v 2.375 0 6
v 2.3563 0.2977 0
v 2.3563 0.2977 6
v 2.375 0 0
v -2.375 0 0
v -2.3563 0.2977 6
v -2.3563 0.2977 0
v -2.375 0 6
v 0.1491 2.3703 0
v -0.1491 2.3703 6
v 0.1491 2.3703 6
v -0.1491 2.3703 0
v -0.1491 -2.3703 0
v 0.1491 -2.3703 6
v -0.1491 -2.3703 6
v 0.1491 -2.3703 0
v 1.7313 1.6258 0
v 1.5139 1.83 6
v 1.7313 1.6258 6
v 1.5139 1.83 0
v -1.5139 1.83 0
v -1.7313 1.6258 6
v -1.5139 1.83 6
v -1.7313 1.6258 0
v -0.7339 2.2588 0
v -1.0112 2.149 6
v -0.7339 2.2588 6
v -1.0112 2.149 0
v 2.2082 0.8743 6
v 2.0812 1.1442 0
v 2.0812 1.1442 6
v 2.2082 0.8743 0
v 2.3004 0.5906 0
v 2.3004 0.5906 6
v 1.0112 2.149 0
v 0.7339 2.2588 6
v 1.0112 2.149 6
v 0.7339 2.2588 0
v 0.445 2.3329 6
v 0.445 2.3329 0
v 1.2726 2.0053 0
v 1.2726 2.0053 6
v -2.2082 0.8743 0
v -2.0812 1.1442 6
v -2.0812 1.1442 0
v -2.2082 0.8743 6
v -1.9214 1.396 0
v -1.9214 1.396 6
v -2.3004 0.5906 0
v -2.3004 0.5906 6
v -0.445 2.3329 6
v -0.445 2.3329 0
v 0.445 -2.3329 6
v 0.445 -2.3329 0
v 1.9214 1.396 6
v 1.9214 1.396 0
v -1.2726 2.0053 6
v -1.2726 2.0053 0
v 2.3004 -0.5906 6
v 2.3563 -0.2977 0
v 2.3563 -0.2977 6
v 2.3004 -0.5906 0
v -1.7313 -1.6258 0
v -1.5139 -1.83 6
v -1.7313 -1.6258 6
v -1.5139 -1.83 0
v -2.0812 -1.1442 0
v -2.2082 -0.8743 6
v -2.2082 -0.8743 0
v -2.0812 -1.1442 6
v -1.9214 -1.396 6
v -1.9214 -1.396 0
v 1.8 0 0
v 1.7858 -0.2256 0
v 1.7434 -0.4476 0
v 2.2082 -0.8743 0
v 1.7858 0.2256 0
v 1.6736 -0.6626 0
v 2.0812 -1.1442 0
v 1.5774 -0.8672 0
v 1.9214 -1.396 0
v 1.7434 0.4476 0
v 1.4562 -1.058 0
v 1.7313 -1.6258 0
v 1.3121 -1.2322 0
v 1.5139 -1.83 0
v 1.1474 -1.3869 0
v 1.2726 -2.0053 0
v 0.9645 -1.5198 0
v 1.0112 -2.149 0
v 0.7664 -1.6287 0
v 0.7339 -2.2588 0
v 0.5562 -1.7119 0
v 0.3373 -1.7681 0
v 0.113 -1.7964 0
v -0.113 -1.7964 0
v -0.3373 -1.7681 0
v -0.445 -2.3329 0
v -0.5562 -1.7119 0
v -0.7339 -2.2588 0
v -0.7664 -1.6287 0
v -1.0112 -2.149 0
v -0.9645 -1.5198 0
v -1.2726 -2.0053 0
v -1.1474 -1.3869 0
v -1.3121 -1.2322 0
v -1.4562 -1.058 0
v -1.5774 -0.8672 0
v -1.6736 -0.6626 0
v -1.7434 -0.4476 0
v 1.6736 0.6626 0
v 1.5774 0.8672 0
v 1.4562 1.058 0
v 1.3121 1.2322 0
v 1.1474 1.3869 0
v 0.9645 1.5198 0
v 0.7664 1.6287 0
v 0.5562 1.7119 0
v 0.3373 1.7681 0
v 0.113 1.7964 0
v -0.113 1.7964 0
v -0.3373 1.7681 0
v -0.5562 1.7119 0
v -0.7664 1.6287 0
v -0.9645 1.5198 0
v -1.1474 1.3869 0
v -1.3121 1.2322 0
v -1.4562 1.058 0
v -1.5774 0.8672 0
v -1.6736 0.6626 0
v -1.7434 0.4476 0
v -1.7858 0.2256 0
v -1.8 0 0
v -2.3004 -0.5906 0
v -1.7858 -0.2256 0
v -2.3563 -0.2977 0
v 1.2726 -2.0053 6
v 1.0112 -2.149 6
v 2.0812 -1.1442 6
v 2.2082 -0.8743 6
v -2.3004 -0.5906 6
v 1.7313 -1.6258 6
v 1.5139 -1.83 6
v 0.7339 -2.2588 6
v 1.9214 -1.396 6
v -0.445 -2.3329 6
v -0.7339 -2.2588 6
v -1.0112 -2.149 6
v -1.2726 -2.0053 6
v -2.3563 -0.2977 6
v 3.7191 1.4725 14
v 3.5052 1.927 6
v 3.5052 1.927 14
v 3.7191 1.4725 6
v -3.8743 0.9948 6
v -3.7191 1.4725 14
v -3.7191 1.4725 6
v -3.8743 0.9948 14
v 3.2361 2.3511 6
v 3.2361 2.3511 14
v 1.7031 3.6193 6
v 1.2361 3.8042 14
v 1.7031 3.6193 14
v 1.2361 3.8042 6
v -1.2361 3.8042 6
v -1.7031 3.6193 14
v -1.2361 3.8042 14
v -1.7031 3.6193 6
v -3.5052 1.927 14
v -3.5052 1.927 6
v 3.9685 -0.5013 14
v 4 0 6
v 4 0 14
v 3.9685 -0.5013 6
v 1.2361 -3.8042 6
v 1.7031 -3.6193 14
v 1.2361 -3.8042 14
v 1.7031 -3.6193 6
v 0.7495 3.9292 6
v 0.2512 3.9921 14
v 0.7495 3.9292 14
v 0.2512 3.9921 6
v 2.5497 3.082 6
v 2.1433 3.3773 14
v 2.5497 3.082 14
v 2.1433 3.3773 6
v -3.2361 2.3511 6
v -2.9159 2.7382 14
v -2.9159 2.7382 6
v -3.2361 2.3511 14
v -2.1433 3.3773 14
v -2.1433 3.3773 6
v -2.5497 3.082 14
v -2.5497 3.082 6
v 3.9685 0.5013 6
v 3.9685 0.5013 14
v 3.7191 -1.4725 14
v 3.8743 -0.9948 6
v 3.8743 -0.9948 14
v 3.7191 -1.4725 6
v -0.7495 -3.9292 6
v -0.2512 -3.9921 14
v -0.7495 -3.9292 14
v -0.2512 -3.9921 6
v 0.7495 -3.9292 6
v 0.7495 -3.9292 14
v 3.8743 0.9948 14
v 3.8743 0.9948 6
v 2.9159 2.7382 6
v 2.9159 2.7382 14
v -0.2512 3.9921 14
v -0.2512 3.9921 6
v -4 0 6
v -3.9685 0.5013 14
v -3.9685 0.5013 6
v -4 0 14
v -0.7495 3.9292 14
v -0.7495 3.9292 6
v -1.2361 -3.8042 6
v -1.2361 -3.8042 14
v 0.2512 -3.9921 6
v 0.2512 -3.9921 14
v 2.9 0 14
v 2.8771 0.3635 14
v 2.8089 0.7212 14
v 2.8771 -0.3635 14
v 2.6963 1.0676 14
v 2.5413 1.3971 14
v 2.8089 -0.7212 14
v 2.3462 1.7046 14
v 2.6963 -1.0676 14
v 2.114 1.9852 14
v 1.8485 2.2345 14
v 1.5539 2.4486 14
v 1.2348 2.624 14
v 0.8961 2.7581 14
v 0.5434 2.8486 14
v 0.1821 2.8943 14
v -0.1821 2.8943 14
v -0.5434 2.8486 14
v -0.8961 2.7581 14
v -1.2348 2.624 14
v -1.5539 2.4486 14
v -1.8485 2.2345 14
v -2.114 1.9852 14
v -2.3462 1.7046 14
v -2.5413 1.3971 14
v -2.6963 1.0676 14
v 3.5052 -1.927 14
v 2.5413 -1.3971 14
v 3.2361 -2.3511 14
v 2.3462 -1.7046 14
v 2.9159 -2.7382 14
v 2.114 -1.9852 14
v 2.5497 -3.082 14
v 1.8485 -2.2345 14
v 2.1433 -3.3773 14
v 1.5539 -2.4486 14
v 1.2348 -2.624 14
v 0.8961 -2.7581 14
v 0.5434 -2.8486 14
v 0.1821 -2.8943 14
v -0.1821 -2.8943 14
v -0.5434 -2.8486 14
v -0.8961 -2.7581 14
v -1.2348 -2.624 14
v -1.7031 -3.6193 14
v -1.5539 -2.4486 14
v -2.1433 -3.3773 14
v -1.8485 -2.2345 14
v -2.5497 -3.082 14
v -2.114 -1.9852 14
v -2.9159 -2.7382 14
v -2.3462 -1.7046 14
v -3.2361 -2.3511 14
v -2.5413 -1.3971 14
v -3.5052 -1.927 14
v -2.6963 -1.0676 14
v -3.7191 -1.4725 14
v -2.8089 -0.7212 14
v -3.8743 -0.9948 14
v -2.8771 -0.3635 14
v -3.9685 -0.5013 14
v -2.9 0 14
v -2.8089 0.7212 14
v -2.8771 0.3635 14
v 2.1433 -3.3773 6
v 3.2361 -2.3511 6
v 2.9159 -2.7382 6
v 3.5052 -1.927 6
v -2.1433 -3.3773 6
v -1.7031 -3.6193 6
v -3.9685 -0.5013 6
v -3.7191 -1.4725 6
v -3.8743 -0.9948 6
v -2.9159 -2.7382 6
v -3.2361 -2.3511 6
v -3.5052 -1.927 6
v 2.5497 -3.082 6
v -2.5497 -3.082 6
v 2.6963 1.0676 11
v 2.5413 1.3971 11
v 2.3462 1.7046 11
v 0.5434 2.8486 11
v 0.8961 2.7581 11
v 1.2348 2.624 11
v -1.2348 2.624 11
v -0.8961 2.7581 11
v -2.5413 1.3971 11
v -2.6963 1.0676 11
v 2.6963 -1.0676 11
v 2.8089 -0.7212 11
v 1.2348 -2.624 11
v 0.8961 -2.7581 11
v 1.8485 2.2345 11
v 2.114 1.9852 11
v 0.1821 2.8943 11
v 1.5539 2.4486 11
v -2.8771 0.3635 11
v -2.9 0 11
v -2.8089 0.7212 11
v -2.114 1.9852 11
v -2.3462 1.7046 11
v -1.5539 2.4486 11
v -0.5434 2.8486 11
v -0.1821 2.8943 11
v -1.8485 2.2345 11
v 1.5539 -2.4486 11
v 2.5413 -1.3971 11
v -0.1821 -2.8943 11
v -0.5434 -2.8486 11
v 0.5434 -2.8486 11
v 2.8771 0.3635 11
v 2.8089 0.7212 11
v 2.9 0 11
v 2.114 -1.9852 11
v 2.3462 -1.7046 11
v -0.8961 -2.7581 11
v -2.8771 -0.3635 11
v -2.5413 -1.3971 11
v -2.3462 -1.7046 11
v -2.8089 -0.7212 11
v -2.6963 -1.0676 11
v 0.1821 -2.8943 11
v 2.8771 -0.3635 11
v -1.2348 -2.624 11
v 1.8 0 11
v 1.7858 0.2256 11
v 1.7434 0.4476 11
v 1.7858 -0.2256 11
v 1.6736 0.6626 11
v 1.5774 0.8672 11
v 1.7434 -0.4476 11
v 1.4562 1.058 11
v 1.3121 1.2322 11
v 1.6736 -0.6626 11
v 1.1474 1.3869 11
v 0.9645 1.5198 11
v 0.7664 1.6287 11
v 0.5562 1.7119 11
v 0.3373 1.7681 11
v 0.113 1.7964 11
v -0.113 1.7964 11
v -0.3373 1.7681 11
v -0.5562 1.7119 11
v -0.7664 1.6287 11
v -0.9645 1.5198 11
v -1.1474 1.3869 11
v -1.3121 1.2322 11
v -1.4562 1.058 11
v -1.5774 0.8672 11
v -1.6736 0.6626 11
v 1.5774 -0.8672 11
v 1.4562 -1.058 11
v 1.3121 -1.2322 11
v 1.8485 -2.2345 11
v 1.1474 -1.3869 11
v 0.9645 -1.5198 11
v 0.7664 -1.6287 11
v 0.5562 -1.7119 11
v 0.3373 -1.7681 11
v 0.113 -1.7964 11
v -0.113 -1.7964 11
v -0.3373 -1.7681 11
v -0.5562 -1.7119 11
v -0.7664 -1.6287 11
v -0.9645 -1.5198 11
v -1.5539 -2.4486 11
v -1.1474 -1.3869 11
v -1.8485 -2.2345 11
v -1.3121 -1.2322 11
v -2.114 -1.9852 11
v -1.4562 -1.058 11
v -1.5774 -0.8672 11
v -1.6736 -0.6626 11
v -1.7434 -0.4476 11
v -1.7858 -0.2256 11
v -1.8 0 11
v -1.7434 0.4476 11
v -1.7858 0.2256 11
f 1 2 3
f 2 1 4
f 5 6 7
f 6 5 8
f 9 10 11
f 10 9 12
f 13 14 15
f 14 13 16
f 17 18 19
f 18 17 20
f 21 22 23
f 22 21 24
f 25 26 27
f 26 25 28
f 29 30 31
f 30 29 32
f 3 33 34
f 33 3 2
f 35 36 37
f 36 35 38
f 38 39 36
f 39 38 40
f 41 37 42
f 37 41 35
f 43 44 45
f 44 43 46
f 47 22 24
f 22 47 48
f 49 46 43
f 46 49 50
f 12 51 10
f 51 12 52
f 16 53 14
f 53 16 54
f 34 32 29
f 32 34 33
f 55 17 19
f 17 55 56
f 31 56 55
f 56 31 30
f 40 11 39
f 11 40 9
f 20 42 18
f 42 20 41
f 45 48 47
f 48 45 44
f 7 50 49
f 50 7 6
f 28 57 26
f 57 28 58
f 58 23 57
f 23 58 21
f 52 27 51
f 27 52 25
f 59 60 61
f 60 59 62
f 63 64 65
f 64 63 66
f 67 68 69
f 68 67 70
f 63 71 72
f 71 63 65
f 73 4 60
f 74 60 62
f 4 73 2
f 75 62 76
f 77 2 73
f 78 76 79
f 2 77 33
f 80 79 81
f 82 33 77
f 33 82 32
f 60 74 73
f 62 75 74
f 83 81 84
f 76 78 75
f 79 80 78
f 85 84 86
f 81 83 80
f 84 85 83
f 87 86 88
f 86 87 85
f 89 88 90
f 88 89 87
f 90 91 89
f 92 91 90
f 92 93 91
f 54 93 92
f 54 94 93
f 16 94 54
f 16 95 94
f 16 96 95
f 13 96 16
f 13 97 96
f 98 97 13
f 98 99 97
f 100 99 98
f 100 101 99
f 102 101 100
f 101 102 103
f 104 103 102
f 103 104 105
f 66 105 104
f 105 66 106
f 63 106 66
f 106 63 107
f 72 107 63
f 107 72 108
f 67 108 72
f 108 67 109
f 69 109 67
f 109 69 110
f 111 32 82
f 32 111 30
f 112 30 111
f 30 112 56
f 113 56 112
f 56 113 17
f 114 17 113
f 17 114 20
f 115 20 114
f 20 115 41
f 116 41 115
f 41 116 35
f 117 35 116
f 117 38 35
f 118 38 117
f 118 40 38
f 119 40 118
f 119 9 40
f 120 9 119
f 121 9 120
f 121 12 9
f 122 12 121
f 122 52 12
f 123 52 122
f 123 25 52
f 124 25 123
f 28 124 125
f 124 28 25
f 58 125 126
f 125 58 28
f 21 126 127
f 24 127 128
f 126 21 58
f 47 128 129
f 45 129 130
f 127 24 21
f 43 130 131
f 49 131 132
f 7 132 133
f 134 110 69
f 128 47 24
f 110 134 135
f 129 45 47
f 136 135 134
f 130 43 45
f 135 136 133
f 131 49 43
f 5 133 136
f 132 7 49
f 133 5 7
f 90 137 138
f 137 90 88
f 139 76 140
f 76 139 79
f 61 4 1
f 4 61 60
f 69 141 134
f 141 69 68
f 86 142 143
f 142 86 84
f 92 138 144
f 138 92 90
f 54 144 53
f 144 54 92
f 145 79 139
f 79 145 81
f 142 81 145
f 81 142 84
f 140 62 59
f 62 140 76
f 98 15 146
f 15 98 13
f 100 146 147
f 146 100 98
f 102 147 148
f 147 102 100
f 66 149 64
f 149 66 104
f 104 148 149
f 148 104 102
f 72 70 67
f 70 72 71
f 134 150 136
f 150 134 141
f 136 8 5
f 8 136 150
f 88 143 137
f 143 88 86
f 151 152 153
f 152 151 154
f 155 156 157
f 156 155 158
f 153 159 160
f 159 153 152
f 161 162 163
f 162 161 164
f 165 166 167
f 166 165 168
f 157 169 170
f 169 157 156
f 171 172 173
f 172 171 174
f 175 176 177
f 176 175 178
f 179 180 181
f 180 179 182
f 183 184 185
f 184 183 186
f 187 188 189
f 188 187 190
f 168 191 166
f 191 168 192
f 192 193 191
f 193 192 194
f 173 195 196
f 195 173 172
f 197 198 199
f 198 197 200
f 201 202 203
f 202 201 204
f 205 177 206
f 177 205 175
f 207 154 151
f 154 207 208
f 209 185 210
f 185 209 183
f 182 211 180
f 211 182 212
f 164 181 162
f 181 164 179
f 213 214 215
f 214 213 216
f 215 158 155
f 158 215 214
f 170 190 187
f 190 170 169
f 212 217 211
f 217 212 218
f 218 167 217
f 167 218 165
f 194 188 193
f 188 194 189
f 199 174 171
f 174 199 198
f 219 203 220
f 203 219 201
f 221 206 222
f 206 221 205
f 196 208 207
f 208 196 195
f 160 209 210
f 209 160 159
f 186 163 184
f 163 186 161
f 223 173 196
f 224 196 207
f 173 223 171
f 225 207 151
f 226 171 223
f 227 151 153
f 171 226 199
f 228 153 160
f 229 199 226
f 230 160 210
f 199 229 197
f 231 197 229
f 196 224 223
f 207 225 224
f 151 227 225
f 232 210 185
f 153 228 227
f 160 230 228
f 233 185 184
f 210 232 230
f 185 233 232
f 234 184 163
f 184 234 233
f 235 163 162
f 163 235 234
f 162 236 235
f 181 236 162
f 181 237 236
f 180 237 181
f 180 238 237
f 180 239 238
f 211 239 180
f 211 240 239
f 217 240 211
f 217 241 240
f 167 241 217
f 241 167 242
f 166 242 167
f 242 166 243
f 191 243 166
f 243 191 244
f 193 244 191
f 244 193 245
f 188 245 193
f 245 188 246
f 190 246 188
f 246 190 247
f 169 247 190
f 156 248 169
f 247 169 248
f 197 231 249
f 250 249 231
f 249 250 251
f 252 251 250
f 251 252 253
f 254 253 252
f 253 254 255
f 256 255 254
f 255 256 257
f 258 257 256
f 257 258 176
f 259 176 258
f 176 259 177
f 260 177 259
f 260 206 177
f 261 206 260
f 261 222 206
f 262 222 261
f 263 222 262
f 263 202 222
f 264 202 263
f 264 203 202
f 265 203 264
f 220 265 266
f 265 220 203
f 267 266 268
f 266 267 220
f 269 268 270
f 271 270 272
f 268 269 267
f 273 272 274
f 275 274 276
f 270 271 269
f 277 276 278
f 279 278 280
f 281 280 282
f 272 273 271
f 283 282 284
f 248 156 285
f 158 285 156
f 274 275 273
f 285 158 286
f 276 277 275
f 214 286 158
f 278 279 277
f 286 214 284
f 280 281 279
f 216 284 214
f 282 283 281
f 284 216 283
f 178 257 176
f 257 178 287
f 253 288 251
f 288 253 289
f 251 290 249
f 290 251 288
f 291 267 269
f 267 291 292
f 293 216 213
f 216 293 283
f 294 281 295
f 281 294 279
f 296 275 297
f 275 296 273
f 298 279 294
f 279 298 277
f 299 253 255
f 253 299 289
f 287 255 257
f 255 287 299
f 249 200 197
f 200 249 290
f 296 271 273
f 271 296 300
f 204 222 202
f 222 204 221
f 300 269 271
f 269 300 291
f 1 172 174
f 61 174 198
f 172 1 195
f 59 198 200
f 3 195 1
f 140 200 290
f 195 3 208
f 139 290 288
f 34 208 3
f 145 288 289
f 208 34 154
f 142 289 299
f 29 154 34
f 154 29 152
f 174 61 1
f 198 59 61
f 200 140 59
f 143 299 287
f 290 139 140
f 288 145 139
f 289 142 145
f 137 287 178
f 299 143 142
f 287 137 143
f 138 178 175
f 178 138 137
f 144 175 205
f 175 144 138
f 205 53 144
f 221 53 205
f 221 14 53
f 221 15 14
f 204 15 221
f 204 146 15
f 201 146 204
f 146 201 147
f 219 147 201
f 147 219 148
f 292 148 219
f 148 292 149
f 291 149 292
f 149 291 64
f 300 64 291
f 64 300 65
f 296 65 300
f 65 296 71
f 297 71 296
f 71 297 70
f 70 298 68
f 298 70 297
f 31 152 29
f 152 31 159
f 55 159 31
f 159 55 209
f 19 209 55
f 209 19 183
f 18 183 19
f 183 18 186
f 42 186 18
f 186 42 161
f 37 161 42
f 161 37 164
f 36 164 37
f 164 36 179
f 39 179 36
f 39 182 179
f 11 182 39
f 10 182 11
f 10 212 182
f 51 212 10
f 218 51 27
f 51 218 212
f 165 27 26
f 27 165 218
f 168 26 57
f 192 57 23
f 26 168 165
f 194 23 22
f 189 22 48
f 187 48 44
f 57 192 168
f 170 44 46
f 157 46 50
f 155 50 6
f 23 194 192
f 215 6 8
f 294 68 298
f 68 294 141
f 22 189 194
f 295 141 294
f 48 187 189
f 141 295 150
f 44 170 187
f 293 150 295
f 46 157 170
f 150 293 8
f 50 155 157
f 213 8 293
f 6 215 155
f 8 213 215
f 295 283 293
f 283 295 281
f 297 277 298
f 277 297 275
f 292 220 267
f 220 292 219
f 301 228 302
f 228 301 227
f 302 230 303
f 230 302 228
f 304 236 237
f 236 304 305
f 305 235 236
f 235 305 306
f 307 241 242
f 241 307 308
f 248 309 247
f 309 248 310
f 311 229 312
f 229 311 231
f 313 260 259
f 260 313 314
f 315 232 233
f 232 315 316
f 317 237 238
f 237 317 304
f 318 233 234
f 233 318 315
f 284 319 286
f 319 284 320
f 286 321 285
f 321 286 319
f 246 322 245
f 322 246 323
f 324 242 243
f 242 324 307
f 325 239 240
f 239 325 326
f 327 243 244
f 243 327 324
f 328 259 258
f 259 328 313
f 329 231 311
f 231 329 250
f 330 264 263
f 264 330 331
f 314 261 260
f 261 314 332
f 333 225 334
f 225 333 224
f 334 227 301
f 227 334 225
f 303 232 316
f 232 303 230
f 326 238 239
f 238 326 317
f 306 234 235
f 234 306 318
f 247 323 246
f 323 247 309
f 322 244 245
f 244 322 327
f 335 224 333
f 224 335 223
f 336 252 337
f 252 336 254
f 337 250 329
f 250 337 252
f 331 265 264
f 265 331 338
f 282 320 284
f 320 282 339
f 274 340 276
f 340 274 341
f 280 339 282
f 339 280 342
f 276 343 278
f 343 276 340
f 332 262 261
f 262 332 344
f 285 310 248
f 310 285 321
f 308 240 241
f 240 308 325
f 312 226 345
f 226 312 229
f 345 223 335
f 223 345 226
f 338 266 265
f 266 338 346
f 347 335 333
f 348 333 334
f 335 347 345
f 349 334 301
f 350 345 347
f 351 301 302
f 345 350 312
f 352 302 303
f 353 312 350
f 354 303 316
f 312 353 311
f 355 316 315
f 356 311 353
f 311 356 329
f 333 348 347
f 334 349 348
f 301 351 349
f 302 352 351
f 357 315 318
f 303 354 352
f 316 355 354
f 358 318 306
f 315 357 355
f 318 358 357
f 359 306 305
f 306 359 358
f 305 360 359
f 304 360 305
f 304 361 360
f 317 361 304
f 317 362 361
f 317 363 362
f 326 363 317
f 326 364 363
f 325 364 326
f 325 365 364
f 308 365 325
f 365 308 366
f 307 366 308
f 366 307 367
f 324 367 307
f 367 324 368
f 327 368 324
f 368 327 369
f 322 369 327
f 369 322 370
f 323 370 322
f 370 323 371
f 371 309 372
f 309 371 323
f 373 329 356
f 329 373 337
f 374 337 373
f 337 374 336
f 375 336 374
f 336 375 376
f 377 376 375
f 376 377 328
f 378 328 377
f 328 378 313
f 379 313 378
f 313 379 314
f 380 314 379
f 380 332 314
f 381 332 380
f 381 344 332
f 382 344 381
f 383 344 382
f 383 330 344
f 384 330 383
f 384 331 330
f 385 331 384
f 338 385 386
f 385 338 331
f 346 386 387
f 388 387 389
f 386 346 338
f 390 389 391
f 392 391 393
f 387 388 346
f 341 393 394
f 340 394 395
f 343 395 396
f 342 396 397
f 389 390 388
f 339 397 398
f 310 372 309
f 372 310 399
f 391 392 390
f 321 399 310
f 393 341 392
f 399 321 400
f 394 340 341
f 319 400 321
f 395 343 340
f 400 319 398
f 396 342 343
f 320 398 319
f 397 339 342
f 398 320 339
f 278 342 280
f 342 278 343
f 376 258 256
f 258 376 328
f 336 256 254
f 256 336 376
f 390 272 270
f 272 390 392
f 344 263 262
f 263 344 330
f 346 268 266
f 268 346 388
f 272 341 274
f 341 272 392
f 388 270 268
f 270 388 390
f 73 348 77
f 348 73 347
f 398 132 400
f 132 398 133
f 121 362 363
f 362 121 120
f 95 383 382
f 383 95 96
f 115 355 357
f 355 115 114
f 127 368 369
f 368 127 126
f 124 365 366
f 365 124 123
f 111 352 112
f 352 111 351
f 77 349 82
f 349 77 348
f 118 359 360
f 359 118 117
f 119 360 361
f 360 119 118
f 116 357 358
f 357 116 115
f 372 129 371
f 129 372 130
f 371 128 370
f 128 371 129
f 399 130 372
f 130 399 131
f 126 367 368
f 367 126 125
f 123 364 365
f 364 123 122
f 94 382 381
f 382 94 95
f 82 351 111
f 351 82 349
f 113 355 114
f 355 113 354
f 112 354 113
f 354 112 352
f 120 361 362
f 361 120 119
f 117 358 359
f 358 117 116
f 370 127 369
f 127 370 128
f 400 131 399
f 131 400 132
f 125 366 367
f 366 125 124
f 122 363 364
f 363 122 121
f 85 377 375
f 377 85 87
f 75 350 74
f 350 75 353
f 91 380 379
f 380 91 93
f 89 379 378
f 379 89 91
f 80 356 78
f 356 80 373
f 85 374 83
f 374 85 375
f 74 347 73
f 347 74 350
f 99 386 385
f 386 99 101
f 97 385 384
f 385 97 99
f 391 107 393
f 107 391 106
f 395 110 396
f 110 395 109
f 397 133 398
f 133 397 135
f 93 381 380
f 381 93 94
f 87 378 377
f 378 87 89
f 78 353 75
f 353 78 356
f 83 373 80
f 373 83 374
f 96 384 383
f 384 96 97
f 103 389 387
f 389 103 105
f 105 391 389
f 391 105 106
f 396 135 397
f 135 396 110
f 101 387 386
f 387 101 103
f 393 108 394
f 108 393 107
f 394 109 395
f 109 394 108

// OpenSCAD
$fn = 50;


difference() {
	union() {
		cylinder(h = 9, r = 2.3750000000);
		translate(v = [0, 0, 6.0000000000]) {
			cylinder(h = 8, r = 4.0000000000);
		}
	}
	union() {
		translate(v = [0, 0, 11]) {
			rotate(a = [0, 0, 0]) {
				difference() {
					union() {
						translate(v = [0, 0, -16.0000000000]) {
							rotate(a = [0, 0, 0]) {
								difference() {
									union() {
										#linear_extrude(height = 2.5000000000) {
											polygon(points = [[3.1735000000, 0.0000000000], [1.5867500000, 2.7483316189], [-1.5867500000, 2.7483316189], [-3.1735000000, 0.0000000000], [-1.5867500000, -2.7483316189], [1.5867500000, -2.7483316189]]);
										}
									}
									union();
								}
							}
						}
						translate(v = [0, 0, -16.0000000000]) {
							rotate(a = [0, 0, 0]) {
								difference() {
									union() {
										#linear_extrude(height = 2.5000000000) {
											polygon(points = [[3.1735000000, 0.0000000000], [1.5867500000, 2.7483316189], [-1.5867500000, 2.7483316189], [-3.1735000000, 0.0000000000], [-1.5867500000, -2.7483316189], [1.5867500000, -2.7483316189]]);
										}
									}
									union();
								}
							}
						}
						translate(v = [0, 0, -16.0000000000]) {
							rotate(a = [0, 0, 0]) {
								difference() {
									union() {
										#linear_extrude(height = 2.5000000000) {
											polygon(points = [[3.1735000000, 0.0000000000], [1.5867500000, 2.7483316189], [-1.5867500000, 2.7483316189], [-3.1735000000, 0.0000000000], [-1.5867500000, -2.7483316189], [1.5867500000, -2.7483316189]]);
										}
									}
									union();
								}
							}
						}
						#cylinder(h = 3, r = 2.9000000000);
						#translate(v = [0, 0, -16.0000000000]) {
							cylinder(h = 16, r = 1.5000000000);
						}
						#translate(v = [0, 0, -16.0000000000]) {
							cylinder(h = 16, r = 1.8000000000);
						}
						#translate(v = [0, 0, -16.0000000000]) {
							cylinder(h = 16, r = 1.5000000000);
						}
					}
					union();
				}
			}
		}
		translate(v = [0, 0, -100.0000000000]) {
			cylinder(h = 200, r = 1.5000000000);
		}
	}
}
